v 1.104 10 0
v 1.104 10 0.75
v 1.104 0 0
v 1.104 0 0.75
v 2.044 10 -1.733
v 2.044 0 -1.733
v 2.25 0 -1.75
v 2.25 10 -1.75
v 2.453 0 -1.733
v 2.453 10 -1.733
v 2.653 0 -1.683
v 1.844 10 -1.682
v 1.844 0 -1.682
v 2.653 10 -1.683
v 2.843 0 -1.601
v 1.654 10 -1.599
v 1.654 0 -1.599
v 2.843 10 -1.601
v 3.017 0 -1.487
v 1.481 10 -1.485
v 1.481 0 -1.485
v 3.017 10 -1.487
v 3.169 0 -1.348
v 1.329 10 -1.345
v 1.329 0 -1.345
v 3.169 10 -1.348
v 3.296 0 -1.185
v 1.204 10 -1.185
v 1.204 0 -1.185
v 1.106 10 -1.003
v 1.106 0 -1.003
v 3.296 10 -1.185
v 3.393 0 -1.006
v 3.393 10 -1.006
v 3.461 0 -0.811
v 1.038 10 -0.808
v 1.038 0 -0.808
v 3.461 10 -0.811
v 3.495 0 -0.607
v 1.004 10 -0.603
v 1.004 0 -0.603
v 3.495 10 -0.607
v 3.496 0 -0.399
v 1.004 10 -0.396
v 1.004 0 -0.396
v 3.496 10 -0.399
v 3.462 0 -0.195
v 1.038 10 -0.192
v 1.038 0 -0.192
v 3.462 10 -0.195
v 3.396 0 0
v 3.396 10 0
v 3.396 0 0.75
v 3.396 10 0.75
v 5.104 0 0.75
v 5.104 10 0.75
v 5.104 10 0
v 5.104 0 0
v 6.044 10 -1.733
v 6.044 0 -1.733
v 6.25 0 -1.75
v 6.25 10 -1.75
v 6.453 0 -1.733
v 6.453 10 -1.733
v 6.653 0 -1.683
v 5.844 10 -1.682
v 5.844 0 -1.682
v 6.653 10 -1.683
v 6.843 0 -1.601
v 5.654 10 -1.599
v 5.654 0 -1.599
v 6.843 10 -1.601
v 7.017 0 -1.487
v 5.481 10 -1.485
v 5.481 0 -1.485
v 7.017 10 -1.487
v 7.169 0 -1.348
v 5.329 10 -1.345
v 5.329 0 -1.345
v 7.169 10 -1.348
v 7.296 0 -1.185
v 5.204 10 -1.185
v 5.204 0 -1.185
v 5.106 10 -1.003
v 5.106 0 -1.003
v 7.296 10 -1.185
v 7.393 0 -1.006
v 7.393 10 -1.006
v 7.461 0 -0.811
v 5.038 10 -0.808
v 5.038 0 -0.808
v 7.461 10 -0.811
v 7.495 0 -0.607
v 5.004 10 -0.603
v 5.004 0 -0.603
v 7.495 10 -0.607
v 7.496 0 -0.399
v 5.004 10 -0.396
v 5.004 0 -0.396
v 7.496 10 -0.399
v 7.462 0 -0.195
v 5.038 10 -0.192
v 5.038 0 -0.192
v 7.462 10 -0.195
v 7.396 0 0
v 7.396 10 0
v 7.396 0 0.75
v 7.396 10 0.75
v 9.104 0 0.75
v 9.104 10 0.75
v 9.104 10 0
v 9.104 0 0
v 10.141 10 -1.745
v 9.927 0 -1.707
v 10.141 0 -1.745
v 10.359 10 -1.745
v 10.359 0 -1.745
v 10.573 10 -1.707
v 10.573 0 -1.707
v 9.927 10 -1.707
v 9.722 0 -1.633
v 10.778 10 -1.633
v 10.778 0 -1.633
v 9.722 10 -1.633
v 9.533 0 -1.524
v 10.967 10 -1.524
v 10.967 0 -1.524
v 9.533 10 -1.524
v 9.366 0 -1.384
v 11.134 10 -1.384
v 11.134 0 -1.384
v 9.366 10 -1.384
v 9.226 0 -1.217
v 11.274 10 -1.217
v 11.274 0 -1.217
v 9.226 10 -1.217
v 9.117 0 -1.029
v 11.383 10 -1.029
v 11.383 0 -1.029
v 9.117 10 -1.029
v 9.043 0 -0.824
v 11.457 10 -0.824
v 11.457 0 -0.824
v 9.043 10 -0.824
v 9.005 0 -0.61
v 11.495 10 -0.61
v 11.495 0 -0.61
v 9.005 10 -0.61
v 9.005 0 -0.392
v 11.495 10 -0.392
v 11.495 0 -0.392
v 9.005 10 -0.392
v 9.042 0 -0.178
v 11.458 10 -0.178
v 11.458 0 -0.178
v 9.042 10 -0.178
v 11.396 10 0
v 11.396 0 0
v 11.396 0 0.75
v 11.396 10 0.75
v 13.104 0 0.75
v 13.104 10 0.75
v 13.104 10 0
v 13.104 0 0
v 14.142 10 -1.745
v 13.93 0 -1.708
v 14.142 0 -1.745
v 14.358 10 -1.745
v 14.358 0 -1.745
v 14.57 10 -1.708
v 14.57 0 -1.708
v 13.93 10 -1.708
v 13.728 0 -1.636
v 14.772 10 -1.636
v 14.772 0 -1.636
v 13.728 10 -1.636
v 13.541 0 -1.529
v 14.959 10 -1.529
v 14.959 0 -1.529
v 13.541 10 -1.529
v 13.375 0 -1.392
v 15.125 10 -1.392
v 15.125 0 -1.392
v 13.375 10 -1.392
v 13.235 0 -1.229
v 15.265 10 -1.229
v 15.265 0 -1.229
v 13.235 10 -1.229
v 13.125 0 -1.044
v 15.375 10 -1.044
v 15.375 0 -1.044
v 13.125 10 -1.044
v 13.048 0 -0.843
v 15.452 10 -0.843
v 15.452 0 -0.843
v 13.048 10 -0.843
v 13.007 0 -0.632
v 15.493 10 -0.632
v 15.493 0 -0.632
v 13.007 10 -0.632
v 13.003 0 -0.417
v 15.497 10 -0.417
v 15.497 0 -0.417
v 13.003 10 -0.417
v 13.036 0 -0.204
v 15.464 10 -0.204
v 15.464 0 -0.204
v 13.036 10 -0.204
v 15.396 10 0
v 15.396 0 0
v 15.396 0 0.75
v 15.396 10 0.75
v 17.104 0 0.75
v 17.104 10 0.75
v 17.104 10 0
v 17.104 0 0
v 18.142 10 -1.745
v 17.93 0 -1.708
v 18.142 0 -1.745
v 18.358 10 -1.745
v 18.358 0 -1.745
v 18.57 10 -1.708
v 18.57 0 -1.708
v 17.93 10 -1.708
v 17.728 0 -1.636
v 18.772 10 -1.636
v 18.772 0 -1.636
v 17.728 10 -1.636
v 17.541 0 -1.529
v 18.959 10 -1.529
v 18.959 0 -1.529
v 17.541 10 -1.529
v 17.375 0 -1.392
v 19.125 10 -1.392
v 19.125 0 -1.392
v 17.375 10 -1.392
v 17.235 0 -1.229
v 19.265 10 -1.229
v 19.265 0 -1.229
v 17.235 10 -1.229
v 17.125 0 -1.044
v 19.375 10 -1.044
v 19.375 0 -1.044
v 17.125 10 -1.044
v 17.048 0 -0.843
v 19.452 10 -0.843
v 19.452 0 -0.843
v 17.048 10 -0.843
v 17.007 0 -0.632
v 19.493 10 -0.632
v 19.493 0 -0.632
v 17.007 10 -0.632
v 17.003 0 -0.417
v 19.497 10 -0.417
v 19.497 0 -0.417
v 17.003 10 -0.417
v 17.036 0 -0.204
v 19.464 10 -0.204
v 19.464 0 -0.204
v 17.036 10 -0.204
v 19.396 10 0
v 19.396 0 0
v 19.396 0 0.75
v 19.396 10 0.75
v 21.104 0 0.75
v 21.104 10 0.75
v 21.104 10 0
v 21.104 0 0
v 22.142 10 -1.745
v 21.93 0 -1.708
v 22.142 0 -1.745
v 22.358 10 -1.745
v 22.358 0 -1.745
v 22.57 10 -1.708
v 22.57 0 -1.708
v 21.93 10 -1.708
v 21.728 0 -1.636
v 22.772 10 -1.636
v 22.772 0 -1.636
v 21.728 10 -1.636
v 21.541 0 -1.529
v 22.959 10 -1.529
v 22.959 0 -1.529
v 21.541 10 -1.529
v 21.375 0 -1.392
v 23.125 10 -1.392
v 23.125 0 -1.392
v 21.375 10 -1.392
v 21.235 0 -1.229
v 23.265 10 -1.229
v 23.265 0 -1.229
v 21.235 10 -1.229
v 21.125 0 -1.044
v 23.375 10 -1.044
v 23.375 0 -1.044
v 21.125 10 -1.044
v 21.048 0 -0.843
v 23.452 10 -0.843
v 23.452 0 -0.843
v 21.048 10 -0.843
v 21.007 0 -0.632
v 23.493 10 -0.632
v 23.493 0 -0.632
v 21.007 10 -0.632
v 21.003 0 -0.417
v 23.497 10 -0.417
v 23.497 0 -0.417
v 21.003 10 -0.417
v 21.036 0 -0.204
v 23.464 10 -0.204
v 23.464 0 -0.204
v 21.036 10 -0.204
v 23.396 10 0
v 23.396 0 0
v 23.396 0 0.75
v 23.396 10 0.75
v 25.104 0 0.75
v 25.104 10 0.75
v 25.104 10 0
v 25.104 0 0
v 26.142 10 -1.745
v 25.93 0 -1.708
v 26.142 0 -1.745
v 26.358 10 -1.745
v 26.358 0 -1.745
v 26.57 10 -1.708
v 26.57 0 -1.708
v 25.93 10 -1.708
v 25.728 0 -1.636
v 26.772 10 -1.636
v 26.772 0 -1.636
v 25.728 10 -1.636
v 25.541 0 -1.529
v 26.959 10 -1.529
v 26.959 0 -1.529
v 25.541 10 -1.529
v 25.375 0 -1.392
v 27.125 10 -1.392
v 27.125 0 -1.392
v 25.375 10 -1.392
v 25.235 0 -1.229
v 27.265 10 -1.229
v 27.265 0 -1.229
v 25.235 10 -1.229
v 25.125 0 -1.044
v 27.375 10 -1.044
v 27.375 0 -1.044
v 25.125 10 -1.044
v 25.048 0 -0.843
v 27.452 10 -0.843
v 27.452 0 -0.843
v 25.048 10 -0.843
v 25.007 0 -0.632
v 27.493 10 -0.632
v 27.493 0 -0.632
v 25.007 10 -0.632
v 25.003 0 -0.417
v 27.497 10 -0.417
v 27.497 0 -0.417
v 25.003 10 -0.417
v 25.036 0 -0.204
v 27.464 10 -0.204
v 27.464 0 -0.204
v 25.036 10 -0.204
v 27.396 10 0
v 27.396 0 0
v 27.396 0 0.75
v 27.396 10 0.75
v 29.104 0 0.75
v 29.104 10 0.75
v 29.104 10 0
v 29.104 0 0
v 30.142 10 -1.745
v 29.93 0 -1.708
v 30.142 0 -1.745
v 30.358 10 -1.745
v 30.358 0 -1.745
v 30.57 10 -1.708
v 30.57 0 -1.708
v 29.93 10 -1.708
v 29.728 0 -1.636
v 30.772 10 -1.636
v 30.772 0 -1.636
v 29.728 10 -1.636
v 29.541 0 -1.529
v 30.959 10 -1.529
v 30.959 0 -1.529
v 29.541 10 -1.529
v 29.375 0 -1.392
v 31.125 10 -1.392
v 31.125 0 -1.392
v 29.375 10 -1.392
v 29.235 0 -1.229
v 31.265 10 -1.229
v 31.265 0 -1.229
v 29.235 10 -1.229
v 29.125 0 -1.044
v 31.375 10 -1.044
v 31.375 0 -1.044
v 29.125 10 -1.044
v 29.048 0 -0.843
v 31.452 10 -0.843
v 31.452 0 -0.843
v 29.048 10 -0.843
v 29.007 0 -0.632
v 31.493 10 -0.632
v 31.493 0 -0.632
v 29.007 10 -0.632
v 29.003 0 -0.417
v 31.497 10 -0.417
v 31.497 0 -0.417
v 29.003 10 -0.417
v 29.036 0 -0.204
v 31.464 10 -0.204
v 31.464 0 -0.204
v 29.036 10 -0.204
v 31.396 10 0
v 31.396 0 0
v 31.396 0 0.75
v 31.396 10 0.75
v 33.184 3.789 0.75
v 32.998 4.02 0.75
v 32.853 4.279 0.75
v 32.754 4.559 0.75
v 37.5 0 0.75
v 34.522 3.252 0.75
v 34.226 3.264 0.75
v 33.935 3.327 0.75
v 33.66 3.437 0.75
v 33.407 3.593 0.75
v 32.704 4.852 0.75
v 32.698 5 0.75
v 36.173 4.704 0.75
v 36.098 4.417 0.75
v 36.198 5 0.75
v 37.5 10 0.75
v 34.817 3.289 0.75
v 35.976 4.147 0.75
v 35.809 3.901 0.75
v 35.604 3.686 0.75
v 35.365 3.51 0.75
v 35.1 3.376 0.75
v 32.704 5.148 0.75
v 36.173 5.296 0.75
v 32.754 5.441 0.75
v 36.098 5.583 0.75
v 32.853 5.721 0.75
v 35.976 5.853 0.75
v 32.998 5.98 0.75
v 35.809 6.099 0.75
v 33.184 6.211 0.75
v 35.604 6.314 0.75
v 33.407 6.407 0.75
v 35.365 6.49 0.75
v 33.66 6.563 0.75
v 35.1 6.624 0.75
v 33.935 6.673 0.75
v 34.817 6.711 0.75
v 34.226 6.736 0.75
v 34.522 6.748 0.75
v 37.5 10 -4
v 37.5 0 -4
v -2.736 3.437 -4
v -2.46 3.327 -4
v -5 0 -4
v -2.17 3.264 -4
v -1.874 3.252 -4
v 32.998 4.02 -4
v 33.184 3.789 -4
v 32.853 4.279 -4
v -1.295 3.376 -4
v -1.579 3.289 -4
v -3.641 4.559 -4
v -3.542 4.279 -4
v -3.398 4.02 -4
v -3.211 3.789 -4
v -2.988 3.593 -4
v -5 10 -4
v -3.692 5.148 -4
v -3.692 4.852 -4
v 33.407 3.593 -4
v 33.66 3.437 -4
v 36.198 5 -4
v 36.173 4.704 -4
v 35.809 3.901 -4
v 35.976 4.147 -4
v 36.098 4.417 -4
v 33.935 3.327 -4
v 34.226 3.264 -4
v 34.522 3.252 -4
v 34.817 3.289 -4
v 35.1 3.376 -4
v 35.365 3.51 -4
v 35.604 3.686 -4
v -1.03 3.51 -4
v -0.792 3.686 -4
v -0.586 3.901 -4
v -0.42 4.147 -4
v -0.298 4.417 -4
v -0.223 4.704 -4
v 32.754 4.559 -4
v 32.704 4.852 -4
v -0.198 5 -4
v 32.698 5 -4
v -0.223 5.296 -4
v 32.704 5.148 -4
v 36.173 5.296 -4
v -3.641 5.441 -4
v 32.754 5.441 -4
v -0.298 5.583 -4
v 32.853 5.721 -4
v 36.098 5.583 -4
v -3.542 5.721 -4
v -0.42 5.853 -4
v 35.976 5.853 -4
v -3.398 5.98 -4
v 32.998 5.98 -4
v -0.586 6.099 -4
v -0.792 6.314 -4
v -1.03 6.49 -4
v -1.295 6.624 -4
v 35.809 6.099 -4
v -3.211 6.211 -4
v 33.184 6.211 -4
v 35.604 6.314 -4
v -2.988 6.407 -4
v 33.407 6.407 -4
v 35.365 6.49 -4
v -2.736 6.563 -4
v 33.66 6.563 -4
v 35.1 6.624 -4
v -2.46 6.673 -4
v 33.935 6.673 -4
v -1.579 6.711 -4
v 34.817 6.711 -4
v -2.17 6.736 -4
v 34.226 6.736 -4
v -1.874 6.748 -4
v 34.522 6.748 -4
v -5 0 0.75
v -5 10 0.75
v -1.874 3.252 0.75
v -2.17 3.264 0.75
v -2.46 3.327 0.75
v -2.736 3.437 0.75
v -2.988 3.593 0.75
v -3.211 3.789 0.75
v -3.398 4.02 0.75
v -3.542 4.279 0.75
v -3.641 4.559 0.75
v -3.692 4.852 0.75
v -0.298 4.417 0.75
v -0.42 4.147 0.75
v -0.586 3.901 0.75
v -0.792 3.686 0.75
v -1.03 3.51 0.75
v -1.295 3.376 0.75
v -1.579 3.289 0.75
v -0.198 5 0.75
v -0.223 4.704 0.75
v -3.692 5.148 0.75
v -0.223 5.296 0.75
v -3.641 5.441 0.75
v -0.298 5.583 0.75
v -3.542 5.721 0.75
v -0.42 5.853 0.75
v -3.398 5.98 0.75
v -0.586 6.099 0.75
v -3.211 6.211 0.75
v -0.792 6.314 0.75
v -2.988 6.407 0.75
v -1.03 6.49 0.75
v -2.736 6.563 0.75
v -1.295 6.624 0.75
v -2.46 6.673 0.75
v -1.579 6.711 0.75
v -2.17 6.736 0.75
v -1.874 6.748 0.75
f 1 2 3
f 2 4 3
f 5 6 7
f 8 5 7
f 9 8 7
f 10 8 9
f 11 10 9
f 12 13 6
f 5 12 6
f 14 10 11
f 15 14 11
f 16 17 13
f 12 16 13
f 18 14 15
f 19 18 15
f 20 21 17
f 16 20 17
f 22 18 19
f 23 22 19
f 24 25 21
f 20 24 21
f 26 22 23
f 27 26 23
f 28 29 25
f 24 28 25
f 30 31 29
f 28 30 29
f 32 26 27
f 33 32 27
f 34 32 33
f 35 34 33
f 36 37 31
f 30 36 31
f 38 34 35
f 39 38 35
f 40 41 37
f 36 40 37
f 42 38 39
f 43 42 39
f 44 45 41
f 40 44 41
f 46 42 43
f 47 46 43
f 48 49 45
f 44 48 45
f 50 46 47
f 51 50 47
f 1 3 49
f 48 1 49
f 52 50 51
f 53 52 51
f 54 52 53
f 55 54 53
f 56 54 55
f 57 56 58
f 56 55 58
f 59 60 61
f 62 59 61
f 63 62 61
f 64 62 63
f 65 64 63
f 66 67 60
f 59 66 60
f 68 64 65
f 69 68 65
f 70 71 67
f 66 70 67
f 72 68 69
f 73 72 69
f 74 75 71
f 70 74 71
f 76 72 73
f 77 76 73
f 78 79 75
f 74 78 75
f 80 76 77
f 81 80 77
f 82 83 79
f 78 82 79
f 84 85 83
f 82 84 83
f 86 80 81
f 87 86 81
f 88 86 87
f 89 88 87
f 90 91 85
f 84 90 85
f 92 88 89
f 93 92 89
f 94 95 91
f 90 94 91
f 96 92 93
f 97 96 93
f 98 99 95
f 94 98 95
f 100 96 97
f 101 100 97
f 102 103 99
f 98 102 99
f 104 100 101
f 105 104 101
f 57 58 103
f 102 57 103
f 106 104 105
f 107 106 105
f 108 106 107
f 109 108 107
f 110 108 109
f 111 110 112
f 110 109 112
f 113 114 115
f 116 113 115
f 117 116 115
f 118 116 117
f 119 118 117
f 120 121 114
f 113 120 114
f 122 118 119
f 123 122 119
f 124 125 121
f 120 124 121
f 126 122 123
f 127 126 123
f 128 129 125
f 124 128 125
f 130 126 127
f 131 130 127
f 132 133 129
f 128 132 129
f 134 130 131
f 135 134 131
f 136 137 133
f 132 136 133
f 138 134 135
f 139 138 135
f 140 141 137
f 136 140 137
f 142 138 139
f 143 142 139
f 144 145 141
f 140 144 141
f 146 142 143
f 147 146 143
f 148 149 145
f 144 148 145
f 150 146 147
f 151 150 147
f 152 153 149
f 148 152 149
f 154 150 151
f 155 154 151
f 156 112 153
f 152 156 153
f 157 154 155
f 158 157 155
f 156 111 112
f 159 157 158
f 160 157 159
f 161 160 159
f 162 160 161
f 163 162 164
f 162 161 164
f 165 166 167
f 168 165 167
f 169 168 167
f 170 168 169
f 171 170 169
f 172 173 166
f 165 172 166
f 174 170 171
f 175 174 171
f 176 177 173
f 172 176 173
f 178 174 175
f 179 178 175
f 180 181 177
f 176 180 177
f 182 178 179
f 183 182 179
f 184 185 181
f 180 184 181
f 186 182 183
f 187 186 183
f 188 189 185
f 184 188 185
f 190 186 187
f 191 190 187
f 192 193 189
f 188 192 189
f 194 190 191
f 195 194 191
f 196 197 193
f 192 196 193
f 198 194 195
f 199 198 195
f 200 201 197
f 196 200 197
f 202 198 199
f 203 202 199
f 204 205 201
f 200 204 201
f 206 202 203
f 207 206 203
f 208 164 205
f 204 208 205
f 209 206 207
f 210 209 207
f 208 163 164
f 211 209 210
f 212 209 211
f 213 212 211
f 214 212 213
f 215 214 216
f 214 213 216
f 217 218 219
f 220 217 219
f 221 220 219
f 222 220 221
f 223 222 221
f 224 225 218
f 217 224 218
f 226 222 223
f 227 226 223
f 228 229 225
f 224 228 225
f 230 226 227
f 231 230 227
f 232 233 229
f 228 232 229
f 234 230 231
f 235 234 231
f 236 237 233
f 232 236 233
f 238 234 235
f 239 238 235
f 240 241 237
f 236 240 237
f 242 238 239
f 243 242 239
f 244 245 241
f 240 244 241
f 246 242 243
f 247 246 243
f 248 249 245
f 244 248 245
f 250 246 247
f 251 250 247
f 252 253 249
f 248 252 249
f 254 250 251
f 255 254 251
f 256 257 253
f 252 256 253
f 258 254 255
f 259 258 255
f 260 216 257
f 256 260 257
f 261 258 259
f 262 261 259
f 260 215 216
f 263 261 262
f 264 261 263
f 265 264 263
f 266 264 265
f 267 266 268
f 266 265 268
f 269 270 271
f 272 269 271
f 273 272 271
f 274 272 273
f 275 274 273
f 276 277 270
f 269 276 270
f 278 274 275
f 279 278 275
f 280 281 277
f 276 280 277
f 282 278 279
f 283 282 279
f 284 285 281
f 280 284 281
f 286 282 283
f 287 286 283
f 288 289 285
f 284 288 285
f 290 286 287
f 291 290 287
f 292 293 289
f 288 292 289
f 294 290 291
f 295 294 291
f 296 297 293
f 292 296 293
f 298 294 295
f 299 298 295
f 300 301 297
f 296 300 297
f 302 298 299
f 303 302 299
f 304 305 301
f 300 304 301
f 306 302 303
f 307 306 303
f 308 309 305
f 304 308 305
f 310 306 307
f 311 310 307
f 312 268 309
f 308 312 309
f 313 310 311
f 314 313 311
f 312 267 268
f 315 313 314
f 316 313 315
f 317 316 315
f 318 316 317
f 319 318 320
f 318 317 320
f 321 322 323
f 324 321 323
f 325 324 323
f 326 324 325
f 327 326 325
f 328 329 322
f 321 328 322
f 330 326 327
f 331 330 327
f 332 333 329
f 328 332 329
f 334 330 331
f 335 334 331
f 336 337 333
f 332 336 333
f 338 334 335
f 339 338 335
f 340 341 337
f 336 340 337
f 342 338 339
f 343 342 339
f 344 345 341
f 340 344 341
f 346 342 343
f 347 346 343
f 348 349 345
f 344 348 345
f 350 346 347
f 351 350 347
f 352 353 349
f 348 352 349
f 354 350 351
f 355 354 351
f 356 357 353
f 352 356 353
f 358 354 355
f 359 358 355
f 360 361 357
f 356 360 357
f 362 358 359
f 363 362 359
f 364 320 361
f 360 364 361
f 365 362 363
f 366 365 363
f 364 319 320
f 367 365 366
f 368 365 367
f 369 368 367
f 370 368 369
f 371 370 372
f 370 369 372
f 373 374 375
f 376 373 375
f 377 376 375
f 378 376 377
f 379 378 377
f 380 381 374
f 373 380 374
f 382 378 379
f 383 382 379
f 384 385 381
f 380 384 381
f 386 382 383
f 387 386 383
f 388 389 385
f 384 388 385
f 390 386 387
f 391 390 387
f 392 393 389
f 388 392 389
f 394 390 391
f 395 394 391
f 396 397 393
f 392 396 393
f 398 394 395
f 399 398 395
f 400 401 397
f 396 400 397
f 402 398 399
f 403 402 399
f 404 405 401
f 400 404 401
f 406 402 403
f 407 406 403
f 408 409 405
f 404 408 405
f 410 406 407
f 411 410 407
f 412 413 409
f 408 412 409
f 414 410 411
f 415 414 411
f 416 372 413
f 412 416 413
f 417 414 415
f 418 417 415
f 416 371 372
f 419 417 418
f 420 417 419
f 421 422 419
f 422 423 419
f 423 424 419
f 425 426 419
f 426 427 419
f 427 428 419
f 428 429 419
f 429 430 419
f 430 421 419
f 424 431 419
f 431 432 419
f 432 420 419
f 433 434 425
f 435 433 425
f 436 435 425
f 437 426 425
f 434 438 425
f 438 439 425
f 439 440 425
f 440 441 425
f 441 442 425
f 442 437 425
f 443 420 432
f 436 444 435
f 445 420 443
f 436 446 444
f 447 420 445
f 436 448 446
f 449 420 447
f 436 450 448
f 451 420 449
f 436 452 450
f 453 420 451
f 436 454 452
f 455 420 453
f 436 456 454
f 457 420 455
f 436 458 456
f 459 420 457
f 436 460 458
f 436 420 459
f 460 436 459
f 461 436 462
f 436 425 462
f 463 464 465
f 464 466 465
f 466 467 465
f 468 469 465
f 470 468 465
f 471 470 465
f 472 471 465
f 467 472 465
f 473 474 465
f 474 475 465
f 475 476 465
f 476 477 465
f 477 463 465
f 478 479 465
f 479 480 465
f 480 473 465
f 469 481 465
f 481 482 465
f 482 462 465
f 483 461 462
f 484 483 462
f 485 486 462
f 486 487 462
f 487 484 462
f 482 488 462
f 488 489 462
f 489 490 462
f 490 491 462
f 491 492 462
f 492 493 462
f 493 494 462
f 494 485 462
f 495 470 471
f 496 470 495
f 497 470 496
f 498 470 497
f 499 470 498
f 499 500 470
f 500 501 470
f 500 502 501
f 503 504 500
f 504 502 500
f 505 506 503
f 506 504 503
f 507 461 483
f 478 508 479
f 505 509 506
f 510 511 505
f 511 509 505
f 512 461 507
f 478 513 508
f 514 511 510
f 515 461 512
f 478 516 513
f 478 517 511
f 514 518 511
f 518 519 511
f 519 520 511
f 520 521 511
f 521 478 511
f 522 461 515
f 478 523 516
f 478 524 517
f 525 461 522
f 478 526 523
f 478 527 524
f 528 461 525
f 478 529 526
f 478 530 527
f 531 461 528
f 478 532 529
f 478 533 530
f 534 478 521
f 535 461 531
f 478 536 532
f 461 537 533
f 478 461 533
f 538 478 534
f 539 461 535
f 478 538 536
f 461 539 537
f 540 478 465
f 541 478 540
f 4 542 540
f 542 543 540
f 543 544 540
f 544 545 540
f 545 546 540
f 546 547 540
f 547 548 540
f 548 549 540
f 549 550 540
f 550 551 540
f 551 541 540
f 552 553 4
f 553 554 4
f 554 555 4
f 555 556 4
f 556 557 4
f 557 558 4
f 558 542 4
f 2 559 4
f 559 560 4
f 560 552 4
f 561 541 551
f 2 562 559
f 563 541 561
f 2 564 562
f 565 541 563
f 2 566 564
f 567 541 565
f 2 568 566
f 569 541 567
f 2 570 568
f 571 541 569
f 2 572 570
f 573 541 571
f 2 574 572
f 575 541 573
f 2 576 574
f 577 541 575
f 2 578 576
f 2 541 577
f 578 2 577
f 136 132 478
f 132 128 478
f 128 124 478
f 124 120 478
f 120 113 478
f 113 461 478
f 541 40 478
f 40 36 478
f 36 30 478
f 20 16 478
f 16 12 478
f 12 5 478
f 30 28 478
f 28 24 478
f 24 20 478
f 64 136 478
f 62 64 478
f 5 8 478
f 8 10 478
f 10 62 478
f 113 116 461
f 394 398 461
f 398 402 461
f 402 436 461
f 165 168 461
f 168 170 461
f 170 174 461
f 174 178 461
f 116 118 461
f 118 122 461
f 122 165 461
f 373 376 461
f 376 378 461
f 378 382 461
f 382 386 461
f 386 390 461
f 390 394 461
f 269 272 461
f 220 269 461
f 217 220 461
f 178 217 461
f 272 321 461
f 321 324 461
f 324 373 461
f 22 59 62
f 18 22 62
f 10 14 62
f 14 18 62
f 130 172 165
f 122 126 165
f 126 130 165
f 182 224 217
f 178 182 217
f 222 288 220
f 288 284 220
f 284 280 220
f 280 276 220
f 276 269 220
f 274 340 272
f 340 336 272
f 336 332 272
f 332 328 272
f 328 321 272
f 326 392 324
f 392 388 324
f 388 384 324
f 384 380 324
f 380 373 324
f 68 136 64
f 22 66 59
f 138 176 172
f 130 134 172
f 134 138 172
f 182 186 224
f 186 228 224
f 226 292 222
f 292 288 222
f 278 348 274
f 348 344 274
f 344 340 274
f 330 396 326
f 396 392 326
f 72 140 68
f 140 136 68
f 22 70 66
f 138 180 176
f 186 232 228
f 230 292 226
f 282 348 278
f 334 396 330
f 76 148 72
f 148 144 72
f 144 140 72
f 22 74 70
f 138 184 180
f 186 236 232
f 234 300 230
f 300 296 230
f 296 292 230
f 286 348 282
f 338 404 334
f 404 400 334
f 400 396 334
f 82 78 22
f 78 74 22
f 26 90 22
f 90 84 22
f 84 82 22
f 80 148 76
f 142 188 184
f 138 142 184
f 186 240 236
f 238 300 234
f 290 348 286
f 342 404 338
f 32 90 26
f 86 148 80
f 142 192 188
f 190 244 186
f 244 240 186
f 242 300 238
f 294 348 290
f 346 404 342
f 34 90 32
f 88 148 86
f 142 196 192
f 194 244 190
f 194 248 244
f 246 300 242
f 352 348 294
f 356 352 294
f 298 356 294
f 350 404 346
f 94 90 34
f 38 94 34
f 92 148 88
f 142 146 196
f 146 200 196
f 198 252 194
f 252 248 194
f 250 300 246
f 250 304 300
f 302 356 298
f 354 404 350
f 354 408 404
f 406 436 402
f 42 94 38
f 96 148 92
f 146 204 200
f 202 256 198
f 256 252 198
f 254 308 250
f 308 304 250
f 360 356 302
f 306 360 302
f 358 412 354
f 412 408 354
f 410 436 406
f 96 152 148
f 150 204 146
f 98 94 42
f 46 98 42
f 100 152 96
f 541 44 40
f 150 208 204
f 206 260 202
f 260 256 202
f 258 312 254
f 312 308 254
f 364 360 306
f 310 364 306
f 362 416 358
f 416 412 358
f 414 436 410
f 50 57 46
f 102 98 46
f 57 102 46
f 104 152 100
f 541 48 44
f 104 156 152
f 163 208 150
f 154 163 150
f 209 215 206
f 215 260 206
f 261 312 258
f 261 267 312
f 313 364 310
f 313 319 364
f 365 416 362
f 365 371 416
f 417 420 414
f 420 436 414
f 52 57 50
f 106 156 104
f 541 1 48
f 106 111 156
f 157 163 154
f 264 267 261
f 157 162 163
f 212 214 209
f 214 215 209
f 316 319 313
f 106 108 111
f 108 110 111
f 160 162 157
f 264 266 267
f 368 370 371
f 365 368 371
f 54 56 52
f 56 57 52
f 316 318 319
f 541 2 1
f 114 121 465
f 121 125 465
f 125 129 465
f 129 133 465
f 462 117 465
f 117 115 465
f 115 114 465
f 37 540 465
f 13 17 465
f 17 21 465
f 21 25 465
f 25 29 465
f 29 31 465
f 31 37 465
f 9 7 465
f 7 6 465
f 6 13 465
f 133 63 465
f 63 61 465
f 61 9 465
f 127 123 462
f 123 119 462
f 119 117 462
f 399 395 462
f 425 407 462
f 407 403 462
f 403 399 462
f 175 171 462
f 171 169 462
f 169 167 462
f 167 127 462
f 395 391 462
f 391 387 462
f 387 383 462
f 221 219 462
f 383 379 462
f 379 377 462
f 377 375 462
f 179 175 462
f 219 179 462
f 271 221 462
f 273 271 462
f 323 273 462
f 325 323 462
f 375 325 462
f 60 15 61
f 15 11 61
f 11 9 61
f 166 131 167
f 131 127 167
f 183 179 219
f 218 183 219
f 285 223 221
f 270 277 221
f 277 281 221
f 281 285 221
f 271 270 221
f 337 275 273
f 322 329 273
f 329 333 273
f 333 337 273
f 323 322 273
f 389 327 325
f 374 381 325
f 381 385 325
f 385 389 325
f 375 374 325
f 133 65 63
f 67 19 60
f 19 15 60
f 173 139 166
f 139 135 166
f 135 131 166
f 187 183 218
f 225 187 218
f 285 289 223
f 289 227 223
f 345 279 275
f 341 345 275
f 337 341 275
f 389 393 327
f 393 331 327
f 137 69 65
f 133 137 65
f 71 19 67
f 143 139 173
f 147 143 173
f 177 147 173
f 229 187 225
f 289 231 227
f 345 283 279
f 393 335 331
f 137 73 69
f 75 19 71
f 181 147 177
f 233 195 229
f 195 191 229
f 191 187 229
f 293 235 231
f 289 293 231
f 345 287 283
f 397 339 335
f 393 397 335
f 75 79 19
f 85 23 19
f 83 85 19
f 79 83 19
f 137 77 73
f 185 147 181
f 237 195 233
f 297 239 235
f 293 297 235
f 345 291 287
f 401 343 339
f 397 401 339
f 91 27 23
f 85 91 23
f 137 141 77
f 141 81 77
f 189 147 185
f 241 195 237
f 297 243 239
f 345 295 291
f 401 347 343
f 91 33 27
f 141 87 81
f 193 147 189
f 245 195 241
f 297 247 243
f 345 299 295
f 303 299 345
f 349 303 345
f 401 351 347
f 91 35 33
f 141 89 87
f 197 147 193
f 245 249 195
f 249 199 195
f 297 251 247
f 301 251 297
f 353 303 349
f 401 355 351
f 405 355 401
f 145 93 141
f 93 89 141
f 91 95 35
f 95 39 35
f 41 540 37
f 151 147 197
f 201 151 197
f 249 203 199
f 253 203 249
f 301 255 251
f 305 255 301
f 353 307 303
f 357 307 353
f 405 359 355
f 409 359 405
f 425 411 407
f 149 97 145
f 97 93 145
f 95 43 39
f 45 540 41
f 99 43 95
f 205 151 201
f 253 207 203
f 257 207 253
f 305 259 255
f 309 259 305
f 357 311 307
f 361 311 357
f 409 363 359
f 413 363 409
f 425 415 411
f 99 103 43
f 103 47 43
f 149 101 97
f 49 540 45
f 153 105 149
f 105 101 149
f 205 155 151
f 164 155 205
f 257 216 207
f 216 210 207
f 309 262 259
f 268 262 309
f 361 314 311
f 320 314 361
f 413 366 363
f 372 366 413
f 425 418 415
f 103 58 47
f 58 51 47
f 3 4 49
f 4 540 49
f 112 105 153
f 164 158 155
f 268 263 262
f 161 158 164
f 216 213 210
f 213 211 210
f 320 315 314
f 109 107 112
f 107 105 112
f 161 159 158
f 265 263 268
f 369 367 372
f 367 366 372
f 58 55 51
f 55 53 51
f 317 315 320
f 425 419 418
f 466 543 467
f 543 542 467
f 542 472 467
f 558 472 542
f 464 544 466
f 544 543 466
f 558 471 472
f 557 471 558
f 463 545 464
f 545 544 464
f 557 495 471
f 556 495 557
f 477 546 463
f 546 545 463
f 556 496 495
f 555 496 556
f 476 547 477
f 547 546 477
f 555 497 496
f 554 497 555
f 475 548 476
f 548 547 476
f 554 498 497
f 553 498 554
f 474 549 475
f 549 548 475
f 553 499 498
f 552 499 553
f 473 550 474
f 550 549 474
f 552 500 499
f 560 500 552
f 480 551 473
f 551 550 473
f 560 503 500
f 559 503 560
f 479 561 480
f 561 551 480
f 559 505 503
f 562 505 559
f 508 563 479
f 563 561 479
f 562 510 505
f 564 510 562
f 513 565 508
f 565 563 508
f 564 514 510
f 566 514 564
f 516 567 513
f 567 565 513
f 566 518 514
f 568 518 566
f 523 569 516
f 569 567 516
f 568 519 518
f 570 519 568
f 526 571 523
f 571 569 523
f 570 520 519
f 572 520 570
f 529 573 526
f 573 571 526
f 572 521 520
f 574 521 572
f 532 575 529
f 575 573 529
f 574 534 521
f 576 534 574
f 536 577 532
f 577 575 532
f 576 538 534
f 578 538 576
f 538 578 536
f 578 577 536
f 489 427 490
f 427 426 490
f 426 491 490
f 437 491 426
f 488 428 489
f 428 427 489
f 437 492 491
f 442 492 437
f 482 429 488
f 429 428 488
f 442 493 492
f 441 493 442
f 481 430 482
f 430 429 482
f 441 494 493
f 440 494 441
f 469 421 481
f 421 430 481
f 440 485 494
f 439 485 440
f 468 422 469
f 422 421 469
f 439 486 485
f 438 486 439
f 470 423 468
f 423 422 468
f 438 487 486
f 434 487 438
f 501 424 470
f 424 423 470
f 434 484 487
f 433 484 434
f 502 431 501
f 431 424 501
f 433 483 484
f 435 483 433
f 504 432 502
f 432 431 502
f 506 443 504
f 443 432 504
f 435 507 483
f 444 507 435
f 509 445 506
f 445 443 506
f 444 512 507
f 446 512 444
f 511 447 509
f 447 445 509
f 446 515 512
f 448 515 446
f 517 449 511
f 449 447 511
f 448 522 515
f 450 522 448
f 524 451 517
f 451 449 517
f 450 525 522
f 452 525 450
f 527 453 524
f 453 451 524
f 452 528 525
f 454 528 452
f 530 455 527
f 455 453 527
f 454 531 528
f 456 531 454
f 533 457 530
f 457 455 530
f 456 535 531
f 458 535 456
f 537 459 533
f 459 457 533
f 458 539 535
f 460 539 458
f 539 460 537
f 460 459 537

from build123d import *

# Parameters (mm, degrees)
BOSS_EXTRUDE1_DEPTH = 10
SKETCH4_R           = 1.75
CUT_EXTRUDE2_DEPTH  = 40.100031969


with BuildPart() as part:
    # Sketch1 → Boss-Extrude1 (new body)
    with BuildSketch(Plane(origin=(0, 0, 0), x_dir=(1, 0, 0), z_dir=(0, 1, 0))):
        with BuildLine():
            Line((-5, 4), (-5, -0.75))
            Line((-5, -0.75), (1.104356076, -0.75))
            Line((1.104356076, -0.75), (1.104356076, 0))
            ThreePointArc((1.104356076, 0), (2.25, 1.75), (3.395643924, 0))
            Line((3.395643924, 0), (3.395643924, -0.75))
            Line((3.395643924, -0.75), (5.104356076, -0.75))
            Line((5.104356076, -0.75), (5.104356076, 0))
            ThreePointArc((5.104356076, 0), (6.25, 1.75), (7.395643924, 0))
            Line((7.395643924, 0), (7.395643924, -0.75))
            Line((7.395643924, -0.75), (9.104356076, -0.75))
            Line((9.104356076, -0.75), (9.104356076, 0))
            ThreePointArc((9.104356076, 0), (10.25, 1.75), (11.395643924, 0))
            Line((11.395643924, 0), (11.395643924, -0.75))
            Line((11.395643924, -0.75), (13.104356076, -0.75))
            Line((13.104356076, -0.75), (13.104356076, 0))
            ThreePointArc((13.104356076, 0), (14.25, 1.75), (15.395643924, 0))
            Line((15.395643924, 0), (15.395643924, -0.75))
            Line((15.395643924, -0.75), (17.104356076, -0.75))
            Line((17.104356076, -0.75), (17.104356076, 0))
            ThreePointArc((17.104356076, 0), (18.25, 1.75), (19.395643924, 0))
            Line((19.395643924, 0), (19.395643924, -0.75))
            Line((19.395643924, -0.75), (21.104356076, -0.75))
            Line((21.104356076, -0.75), (21.104356076, 0))
            ThreePointArc((21.104356076, 0), (22.25, 1.75), (23.395643924, 0))
            Line((23.395643924, 0), (23.395643924, -0.75))
            Line((23.395643924, -0.75), (25.104356076, -0.75))
            Line((25.104356076, -0.75), (25.104356076, 0))
            ThreePointArc((25.104356076, 0), (26.25, 1.75), (27.395643924, 0))
            Line((27.395643924, 0), (27.395643924, -0.75))
            Line((27.395643924, -0.75), (29.104356076, -0.75))
            Line((29.104356076, -0.75), (29.104356076, 0))
            ThreePointArc((29.104356076, 0), (30.25, 1.75), (31.395643924, 0))
            Line((31.395643924, 0), (31.395643924, -0.75))
            Line((31.395643924, -0.75), (37.5, -0.75))
            Line((37.5, -0.75), (37.5, 4))
            Line((37.5, 4), (-5, 4))
        make_face()
    extrude(amount=BOSS_EXTRUDE1_DEPTH)

    # Sketch4 → Cut-Extrude2 (cut, through all)
    with BuildSketch(Plane.XY.offset(0.75)):
        with Locations((-1.947821962, 5)):
            Circle(SKETCH4_R)
        with Locations(Location((34.447821962, 5, 0), (0, 0, 180))):
            Circle(SKETCH4_R)
    extrude(amount=-CUT_EXTRUDE2_DEPTH, mode=Mode.SUBTRACT)


solid = part.part
